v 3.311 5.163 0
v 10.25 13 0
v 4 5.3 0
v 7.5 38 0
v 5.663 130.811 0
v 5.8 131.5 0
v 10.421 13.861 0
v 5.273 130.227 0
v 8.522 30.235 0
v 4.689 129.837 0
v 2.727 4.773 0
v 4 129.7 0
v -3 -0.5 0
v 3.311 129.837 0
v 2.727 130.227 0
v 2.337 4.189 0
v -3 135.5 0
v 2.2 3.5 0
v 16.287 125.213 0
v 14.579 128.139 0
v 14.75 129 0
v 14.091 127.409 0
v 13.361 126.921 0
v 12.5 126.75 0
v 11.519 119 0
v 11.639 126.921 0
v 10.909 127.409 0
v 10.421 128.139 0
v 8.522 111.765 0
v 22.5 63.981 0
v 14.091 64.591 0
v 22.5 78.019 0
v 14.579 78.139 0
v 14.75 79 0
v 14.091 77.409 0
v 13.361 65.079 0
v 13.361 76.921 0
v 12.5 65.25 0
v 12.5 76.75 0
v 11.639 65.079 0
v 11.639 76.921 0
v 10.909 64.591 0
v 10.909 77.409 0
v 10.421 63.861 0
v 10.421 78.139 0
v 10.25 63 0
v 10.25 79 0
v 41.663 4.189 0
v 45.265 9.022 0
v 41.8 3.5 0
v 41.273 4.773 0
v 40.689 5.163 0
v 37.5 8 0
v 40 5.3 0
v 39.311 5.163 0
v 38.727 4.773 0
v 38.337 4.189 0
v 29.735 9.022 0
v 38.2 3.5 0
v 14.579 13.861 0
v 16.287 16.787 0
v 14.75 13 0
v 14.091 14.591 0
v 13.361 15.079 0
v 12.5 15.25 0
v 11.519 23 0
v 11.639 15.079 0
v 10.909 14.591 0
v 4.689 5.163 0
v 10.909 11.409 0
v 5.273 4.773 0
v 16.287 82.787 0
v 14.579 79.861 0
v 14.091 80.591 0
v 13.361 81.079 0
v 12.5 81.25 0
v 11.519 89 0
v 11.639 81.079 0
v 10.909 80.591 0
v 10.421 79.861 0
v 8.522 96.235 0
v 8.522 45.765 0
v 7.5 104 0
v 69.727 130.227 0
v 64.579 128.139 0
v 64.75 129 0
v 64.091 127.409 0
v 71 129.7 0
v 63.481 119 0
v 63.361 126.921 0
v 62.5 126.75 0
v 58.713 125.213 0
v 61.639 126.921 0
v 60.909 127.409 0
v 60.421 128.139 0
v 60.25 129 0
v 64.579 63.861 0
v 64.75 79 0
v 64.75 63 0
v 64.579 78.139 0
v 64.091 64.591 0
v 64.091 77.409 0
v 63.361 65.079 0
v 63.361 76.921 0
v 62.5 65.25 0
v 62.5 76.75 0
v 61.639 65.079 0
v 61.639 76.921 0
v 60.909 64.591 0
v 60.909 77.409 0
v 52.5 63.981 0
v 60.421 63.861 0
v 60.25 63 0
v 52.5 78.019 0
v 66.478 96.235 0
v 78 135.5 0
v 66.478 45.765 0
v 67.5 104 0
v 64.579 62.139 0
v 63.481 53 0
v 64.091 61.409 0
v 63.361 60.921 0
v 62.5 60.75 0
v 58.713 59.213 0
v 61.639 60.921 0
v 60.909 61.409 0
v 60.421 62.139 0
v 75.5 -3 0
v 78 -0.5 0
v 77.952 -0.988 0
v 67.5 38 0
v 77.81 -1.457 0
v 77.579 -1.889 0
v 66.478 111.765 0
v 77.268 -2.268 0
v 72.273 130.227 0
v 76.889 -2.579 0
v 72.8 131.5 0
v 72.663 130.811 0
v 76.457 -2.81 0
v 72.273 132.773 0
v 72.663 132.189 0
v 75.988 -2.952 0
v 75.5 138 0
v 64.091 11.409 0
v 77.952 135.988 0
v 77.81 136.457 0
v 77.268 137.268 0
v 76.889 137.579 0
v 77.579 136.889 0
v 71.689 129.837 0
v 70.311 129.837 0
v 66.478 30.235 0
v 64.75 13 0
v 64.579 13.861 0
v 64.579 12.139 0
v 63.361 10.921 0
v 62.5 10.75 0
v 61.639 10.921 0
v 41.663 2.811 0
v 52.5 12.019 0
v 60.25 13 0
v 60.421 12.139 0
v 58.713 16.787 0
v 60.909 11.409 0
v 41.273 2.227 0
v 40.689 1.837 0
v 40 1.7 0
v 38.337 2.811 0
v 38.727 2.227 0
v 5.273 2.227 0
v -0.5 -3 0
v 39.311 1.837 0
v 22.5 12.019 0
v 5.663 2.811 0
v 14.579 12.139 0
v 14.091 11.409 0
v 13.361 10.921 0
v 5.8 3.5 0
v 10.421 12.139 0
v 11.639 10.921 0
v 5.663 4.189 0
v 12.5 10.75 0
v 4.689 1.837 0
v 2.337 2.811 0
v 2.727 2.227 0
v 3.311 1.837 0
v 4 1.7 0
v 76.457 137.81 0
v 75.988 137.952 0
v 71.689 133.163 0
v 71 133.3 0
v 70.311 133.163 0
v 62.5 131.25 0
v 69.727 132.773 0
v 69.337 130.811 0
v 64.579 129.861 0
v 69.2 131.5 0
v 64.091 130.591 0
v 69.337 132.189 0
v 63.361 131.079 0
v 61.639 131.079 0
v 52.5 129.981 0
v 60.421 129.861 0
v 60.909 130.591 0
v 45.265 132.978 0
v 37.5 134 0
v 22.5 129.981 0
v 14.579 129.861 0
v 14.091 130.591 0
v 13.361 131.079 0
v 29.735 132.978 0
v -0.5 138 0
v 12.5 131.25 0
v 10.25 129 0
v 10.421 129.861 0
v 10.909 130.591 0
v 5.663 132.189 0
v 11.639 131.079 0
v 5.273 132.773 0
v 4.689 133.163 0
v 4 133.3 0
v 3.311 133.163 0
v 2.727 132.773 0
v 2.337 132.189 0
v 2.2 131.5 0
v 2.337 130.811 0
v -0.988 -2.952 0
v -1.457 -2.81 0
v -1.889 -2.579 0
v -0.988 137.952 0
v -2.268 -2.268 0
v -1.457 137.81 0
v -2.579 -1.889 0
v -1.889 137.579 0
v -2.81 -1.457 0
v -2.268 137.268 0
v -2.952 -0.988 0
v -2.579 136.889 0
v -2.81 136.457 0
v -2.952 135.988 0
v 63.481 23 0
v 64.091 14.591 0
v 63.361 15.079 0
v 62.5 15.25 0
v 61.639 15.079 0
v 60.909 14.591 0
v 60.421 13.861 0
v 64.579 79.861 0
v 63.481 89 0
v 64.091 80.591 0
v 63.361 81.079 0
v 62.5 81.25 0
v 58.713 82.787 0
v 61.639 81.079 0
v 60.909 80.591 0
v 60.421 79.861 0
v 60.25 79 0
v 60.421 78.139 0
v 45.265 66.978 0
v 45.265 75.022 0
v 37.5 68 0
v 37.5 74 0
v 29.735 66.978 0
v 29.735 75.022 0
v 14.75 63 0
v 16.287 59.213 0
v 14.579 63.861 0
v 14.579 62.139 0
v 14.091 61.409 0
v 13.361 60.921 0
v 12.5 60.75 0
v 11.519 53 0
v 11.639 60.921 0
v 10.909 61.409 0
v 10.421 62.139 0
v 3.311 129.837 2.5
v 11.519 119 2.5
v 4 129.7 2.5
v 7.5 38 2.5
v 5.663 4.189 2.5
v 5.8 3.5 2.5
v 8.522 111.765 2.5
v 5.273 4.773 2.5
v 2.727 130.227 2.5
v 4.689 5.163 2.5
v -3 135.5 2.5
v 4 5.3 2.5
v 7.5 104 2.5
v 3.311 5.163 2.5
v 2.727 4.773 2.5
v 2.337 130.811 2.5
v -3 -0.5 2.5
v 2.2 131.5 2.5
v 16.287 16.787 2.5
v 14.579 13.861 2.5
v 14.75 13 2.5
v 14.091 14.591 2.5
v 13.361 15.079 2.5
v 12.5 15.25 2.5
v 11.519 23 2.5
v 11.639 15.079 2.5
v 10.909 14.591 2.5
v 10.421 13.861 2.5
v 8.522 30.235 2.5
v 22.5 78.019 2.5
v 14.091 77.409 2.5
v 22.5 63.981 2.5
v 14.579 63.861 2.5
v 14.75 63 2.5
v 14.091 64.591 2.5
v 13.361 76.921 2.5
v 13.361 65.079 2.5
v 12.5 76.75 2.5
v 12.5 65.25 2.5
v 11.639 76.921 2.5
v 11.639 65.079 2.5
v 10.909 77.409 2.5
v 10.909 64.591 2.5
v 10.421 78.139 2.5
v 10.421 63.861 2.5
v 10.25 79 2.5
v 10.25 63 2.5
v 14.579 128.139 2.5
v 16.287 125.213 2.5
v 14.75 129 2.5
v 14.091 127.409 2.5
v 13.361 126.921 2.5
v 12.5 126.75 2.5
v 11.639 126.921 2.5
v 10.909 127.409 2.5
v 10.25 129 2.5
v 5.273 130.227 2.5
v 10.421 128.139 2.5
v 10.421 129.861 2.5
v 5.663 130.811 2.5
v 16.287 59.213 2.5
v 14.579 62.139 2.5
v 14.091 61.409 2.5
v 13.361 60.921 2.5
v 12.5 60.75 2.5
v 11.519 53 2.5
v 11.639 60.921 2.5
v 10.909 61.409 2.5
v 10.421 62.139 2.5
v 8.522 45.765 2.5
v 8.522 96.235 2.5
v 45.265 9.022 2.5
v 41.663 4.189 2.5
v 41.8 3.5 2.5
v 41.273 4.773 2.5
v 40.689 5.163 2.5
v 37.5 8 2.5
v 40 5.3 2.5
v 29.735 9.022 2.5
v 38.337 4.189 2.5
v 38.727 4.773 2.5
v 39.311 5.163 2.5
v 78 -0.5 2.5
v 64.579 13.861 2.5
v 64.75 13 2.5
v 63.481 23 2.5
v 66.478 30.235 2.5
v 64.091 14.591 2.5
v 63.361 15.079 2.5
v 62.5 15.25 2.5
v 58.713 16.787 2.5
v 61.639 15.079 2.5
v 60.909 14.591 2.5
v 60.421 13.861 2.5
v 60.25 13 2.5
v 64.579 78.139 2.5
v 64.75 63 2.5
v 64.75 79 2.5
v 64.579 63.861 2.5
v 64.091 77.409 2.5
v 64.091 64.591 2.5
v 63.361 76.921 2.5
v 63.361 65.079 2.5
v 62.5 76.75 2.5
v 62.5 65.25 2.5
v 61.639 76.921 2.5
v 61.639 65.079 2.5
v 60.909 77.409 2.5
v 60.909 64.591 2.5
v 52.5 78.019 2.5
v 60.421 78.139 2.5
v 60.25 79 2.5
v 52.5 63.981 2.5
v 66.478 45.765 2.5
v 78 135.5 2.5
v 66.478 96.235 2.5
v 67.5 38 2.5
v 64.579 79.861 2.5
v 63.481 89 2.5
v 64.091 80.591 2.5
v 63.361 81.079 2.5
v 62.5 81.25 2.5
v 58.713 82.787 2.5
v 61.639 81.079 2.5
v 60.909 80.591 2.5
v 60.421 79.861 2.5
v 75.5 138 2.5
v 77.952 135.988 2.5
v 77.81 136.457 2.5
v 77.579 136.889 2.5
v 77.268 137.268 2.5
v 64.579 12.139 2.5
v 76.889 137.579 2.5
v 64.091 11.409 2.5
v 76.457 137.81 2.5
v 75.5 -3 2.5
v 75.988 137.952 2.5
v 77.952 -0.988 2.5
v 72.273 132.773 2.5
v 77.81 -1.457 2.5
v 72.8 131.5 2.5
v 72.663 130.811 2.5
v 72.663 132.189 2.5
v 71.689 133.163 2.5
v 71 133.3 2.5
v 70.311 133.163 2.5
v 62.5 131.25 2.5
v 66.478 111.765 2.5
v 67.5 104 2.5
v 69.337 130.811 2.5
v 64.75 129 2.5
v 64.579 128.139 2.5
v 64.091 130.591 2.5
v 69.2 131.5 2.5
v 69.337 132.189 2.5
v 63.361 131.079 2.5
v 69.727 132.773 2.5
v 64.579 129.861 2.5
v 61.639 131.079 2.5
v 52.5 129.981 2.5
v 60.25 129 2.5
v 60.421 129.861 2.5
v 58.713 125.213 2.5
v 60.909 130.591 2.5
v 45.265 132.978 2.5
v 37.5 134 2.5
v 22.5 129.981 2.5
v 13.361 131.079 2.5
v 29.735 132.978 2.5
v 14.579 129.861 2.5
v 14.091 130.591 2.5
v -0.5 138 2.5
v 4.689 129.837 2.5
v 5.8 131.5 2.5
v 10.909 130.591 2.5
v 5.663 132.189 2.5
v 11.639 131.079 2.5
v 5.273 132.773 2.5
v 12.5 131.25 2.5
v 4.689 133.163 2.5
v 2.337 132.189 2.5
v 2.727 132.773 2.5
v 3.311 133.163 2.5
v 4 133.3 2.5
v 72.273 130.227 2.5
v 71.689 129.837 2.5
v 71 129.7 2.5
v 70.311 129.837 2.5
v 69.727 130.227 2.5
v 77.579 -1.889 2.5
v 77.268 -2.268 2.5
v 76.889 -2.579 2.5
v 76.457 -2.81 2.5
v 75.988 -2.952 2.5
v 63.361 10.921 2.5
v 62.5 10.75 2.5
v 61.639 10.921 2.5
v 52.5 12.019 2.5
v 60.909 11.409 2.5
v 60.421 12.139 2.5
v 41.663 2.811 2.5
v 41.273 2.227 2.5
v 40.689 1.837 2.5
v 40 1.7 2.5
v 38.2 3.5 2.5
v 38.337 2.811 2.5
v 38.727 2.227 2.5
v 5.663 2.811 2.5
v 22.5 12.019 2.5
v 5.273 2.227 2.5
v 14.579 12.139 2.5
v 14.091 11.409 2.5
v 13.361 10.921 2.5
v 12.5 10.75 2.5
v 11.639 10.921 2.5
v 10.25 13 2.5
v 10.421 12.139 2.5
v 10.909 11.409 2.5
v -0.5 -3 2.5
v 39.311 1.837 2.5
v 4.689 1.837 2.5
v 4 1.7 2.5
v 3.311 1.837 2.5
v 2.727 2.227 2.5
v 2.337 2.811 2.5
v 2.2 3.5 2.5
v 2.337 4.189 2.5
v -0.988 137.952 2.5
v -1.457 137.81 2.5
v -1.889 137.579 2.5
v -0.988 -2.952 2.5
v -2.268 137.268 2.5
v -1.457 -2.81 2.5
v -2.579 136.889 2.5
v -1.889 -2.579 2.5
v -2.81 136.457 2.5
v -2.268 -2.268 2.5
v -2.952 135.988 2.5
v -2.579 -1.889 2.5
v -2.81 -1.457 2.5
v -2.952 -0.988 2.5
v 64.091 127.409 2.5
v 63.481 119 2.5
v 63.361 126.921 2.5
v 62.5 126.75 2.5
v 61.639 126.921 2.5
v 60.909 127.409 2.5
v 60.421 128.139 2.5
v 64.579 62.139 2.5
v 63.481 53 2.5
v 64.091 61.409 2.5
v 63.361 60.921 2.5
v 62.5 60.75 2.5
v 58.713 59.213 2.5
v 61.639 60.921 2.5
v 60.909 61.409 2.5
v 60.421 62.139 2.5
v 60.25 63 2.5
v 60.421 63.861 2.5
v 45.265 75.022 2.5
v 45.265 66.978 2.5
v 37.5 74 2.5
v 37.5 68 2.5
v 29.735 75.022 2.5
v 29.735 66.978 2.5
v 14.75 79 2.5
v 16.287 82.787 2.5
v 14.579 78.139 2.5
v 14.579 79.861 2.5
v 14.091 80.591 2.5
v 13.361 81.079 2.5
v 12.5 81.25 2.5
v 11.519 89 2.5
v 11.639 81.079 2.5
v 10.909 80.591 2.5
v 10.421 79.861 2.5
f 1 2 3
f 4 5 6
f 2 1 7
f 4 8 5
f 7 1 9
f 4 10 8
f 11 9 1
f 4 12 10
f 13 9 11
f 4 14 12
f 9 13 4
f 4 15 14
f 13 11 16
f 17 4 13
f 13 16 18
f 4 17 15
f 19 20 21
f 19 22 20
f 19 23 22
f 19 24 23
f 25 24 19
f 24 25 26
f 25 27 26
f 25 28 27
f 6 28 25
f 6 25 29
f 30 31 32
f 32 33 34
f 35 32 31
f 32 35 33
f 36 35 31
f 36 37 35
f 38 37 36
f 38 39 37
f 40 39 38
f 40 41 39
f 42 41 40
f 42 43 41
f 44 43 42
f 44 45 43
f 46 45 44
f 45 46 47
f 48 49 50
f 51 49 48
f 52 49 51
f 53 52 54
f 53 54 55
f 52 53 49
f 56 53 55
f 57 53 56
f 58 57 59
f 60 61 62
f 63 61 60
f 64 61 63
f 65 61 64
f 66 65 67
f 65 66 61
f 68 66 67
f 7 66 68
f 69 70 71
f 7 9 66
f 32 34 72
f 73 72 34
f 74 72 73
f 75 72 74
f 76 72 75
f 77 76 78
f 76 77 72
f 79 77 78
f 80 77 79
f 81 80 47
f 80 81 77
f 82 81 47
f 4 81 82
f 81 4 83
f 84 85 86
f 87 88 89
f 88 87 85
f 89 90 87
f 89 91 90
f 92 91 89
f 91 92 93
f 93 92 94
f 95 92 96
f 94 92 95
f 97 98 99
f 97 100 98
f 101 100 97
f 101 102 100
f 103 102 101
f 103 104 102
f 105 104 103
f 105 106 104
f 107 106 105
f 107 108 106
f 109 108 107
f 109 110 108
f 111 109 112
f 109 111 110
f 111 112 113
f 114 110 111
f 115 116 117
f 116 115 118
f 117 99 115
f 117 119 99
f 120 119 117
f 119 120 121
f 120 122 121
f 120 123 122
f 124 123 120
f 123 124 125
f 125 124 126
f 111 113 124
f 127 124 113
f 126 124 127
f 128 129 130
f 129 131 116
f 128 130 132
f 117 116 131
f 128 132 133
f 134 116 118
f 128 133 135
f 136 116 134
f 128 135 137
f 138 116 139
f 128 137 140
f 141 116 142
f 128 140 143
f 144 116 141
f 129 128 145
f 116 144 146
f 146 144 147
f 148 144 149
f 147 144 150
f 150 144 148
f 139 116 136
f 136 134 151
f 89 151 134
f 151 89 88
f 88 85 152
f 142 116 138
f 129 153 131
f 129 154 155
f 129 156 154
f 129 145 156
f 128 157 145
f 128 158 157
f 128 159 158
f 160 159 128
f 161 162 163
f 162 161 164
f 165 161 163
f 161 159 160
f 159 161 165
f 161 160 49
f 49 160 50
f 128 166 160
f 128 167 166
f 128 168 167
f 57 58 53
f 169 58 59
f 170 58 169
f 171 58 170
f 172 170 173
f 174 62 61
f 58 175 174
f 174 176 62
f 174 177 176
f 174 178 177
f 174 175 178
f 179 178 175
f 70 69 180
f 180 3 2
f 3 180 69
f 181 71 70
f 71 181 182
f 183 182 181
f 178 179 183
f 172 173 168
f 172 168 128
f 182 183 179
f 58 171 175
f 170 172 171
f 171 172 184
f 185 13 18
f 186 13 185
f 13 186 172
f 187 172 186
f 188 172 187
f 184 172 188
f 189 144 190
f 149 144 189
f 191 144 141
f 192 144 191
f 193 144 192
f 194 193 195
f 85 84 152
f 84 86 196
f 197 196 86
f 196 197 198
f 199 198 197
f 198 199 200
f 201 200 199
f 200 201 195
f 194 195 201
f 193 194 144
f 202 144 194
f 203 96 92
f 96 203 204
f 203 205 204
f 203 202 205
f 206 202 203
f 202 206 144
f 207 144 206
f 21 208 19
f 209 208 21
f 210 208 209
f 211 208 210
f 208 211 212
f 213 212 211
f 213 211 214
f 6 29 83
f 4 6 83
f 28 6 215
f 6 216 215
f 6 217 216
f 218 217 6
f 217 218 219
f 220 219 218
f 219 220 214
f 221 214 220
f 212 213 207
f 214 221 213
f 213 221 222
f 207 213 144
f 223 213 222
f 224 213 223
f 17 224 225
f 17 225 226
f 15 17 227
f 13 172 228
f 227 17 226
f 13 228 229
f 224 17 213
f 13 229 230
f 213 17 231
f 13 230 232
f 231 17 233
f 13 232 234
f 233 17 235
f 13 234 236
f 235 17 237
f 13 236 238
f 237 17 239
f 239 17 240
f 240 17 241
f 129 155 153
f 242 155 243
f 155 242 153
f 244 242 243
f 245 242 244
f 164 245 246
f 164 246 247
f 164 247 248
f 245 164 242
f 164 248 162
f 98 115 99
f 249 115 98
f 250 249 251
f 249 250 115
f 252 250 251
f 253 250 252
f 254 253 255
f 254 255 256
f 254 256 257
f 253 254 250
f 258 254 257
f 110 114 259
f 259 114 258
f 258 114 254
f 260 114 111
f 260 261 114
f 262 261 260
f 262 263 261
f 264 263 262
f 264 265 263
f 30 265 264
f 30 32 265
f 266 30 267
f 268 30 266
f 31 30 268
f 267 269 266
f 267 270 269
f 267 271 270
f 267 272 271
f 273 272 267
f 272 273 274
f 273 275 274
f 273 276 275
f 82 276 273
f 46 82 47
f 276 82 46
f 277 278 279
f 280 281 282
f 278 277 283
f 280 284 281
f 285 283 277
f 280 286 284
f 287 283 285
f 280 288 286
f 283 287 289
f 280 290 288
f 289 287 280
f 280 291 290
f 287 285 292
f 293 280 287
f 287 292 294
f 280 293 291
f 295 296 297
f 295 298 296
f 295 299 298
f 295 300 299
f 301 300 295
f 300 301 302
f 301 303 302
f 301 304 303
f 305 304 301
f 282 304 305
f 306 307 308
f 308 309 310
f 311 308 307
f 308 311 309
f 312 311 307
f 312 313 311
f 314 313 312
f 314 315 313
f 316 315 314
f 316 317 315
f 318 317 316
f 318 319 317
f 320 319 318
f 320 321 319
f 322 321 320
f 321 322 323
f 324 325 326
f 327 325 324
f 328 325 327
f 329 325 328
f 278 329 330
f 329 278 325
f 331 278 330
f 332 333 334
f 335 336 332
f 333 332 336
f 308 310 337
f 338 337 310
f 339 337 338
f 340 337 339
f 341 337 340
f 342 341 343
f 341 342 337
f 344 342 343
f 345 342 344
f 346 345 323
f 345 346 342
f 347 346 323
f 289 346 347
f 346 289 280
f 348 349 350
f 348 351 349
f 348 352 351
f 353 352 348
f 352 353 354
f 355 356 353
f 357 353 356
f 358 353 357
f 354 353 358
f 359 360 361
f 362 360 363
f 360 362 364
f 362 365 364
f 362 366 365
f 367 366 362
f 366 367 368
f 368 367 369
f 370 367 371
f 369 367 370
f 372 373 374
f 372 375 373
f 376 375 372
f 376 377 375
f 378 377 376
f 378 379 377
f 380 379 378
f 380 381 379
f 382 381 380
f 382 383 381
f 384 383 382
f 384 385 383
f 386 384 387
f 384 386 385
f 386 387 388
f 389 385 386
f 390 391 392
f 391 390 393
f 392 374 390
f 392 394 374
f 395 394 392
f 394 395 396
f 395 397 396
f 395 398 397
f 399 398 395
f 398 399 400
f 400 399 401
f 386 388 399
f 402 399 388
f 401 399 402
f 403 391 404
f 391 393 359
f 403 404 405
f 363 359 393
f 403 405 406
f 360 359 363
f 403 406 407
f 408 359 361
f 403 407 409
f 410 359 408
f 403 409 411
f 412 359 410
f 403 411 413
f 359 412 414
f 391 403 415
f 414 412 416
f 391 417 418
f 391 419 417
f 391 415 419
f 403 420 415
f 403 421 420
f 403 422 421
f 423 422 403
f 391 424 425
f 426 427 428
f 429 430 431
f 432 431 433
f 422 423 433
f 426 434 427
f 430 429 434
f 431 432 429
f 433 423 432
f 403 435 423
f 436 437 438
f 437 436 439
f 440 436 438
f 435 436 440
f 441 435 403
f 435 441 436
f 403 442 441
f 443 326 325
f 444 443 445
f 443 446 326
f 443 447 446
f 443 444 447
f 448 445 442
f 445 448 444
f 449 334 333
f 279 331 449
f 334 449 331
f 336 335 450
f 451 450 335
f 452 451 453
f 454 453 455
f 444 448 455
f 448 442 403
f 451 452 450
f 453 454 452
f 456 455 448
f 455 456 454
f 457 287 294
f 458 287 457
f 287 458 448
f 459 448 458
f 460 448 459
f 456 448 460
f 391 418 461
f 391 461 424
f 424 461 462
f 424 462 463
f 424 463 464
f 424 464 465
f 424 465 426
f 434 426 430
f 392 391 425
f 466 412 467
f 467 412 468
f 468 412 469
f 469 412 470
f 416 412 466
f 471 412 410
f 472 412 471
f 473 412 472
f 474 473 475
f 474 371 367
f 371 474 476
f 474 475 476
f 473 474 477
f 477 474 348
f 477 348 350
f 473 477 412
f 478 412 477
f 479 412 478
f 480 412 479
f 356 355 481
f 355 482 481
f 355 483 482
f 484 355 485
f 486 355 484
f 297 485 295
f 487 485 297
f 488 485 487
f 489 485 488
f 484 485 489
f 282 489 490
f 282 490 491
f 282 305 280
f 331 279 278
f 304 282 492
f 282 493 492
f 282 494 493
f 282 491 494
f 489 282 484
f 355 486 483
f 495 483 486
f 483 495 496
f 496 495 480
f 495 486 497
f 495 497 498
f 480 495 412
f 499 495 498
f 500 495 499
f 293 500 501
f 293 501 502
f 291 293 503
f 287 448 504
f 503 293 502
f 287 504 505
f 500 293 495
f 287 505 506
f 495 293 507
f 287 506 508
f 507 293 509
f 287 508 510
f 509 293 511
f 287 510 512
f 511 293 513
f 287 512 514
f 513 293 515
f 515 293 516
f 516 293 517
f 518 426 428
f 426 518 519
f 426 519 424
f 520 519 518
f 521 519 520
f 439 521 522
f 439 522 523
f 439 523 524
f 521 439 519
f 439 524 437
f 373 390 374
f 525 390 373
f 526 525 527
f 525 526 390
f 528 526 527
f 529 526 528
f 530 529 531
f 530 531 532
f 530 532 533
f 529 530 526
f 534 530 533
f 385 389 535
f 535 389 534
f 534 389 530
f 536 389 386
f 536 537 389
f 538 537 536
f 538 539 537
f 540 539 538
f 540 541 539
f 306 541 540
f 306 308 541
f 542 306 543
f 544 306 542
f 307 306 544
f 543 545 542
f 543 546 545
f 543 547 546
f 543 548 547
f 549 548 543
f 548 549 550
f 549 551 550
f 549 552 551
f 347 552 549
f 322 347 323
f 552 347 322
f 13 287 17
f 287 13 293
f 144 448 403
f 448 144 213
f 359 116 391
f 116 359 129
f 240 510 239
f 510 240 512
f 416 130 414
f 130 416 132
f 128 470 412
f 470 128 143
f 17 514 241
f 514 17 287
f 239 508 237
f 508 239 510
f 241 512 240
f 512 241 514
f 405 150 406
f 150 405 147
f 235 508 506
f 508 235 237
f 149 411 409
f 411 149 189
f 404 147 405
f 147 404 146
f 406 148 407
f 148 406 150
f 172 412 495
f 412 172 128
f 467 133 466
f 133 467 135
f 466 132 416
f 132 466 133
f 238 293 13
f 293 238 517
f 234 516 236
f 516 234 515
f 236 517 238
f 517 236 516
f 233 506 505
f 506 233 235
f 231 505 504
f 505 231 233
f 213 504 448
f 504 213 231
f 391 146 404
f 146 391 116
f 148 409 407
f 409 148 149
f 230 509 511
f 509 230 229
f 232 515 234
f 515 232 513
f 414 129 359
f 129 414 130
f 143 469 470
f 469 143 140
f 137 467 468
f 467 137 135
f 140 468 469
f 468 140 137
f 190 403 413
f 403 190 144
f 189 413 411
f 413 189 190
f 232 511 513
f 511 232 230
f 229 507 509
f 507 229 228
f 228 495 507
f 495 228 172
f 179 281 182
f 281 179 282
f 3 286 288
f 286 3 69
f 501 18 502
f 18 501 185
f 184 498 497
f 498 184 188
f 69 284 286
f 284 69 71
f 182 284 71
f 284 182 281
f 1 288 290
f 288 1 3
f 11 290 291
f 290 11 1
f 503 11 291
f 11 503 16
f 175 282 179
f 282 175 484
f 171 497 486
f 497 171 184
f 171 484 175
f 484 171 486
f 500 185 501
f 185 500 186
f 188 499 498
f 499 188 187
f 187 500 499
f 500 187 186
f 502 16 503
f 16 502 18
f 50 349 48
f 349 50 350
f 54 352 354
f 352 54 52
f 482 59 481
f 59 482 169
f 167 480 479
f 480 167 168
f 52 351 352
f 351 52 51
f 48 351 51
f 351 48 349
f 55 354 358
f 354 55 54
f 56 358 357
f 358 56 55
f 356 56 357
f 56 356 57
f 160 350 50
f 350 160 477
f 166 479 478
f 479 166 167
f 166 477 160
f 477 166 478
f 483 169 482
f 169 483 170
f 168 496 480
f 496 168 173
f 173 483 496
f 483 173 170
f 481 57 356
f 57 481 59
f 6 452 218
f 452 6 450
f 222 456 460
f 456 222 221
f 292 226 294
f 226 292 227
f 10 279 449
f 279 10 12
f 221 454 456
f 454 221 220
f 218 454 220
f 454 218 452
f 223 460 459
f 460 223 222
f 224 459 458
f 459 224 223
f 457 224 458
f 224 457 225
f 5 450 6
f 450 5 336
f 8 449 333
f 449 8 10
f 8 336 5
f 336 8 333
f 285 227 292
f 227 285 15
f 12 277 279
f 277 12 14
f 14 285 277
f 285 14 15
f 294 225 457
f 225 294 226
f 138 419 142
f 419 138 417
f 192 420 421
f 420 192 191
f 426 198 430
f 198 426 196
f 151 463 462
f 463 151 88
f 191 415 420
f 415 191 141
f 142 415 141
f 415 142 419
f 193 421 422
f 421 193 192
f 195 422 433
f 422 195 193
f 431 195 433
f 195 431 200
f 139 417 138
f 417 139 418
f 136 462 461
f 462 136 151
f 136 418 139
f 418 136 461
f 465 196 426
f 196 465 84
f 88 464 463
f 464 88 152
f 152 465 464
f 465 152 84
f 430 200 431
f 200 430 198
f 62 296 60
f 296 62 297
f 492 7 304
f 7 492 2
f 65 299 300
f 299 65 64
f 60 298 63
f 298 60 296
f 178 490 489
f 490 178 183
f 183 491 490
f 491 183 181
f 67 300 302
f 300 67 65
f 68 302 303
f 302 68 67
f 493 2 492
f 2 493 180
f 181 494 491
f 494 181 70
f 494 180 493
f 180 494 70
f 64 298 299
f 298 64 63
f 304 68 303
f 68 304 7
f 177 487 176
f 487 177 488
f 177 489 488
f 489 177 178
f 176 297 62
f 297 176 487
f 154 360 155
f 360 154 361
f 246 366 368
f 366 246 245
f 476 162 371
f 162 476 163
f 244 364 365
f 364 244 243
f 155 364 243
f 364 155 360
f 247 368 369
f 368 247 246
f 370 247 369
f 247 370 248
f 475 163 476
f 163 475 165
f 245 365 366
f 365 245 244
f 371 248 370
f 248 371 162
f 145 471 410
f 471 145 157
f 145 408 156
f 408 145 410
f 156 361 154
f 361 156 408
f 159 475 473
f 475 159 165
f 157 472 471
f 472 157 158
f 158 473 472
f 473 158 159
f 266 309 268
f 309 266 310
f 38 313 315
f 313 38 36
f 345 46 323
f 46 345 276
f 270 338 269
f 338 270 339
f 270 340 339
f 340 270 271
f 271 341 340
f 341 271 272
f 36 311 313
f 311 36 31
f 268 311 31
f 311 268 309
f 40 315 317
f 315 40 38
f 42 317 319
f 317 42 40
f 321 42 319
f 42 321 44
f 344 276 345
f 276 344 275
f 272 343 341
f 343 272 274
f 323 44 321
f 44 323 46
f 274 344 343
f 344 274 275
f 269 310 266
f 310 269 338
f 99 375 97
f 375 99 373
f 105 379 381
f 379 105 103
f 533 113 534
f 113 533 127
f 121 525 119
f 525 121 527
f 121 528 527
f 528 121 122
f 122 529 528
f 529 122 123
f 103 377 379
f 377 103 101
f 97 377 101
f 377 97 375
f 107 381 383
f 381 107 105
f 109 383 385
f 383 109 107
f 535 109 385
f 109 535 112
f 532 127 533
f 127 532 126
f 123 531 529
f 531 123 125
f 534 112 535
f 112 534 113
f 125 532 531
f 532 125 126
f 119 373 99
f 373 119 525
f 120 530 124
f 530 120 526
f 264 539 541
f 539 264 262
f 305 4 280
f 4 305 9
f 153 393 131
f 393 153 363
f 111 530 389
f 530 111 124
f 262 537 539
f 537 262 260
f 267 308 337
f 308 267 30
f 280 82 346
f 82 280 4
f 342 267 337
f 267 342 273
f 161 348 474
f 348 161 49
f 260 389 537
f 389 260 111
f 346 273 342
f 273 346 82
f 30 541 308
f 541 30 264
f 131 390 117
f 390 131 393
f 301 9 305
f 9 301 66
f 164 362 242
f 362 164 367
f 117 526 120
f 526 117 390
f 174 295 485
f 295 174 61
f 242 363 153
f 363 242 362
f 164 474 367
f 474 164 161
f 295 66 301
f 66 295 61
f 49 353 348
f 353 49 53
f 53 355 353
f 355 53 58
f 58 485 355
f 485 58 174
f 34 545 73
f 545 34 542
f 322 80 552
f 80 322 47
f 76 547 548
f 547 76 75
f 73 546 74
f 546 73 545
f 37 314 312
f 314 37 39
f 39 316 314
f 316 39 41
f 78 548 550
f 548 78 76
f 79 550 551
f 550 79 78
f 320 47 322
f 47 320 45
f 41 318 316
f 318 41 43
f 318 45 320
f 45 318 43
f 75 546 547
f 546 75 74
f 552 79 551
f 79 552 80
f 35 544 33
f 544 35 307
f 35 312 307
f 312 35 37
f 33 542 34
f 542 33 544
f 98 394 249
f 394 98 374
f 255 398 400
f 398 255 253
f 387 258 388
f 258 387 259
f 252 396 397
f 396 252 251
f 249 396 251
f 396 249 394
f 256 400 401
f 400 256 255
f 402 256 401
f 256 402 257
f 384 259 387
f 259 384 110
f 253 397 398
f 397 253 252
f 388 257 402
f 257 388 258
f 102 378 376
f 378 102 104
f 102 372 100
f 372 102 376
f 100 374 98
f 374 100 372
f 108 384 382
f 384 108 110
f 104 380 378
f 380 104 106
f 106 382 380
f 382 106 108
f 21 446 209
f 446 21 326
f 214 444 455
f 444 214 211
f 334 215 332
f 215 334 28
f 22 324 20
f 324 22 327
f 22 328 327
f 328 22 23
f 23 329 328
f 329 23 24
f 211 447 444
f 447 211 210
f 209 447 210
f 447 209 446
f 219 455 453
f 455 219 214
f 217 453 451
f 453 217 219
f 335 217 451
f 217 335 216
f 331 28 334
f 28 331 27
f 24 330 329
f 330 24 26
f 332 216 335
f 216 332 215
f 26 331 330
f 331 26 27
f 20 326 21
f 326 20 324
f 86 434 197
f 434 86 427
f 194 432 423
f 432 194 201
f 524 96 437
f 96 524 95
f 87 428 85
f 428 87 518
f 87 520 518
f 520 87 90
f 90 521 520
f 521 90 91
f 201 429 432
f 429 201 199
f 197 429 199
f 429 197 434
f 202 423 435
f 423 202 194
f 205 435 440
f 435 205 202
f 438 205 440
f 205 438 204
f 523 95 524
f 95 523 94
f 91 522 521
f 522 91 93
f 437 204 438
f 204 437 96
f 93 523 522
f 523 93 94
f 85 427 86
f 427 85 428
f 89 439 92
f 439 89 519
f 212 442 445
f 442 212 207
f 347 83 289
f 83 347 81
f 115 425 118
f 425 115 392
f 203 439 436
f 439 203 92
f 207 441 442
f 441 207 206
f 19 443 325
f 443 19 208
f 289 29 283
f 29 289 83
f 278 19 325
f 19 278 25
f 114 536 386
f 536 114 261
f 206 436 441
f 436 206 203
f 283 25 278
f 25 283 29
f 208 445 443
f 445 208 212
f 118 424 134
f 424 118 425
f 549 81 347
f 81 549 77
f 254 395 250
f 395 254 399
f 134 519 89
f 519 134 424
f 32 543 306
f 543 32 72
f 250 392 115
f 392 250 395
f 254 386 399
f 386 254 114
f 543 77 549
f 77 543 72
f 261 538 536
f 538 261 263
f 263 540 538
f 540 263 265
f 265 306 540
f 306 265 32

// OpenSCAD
// file: ../../inc/text_RebeliX.scad
// Module names are of the form poly_<inkscape-path-id>().  As a result,
// you can associate a polygon in this OpenSCAD program with the corresponding
// SVG element in the Inkscape document by looking for the XML element with
// the attribute id="inkscape-path-id".

// fudge value is used to ensure that subtracted solids are a tad taller
// in the z dimension than the polygon being subtracted from.  This helps
// keep the resulting .stl file manifold.
fudge = 0.1;

module poly_path3169(h)
{
  scale([25.4/90, -25.4/90, 1]) union()
  {
    linear_extrude(height=h)
      polygon([[74.960940,-30.336910],[74.960940,32.980960],[57.612310,32.980960],[57.612310,-30.336910]]);
  }
}

module poly_path3163(h)
{
  scale([25.4/90, -25.4/90, 1]) union()
  {
    linear_extrude(height=h)
      polygon([[-57.241210,12.663580],[-83.542480,12.663580],[-84.145510,8.999020],[-83.936785,6.702904],[-83.310550,4.453130],[-74.497070,4.453130],[-75.207384,2.200490],[-76.410545,0.591455],[-78.106554,-0.373975],[-80.295410,-0.695800],[-81.843581,-0.523282],[-83.240985,-0.005773],[-84.487624,0.856725],[-85.583500,2.064210],[-86.476452,3.541354],[-87.114271,5.212729],[-87.624510,9.138180],[-87.131669,13.208634],[-86.515593,14.922040],[-85.653080,16.420900],[-84.590546,17.638558],[-83.374347,18.508312],[-82.004486,19.030160],[-80.480960,19.204100],[-79.193740,19.041757],[-77.929706,18.554700],[-75.471190,16.606450],[-65.590820,28.481450],[-69.142321,30.855868],[-72.885155,32.551880],[-76.819321,33.569488],[-80.944820,33.908690],[-85.887918,33.476714],[-90.419325,32.180786],[-94.539042,30.020905],[-98.247070,26.997070],[-101.311495,23.335423],[-103.500369,19.262092],[-104.813691,14.777075],[-105.251460,9.880370],[-104.809342,4.998187],[-103.482975,0.510280],[-101.272357,-3.583352],[-98.177490,-7.282710],[-94.439019,-10.347111],[-90.297559,-12.535976],[-85.753107,-13.849308],[-80.805660,-14.287110],[-75.974212,-13.859454],[-71.545737,-12.576562],[-67.520234,-10.438434],[-63.897700,-7.445070],[-60.904336,-3.825435],[-58.766207,0.191373],[-57.483316,4.605353],[-57.055660,9.416510],[-57.241210,12.663580]]);
  }
}

module poly_path3161(h)
{
  scale([25.4/90, -25.4/90, 1]) union()
  {
    linear_extrude(height=h)
      polygon([[-139.345700,-13.312990],[-139.345700,32.980960],[-158.178710,32.980960],[-158.178710,-30.336910],[-134.011230,-30.336910],[-128.801443,-29.994775],[-124.212065,-28.968459],[-120.243095,-27.257961],[-116.894530,-24.863280],[-113.931608,-21.595888],[-111.815224,-17.916832],[-110.545377,-13.826113],[-110.122070,-9.323730],[-110.646849,-4.711132],[-112.221109,-0.475439],[-114.844850,3.383352],[-118.518070,6.865240],[-107.663570,32.980960],[-127.424320,32.980960],[-136.562500,12.570800],[-136.562500,-3.710940],[-135.078120,-3.710940],[-132.480483,-4.029825],[-130.625022,-4.986543],[-129.511735,-6.581093],[-129.140620,-8.813480],[-129.569720,-10.781990],[-130.856959,-12.188077],[-133.002339,-13.031743],[-136.005860,-13.312990]]);
  }
}

module poly_path3165(h)
{
  scale([25.4/90, -25.4/90, 1]) union()
  {
    linear_extrude(height=h)
      polygon([[-33.676760,-30.336910],[-33.676760,7.561040],[-33.262190,11.599593],[-32.743966,13.186166],[-32.018450,14.484269],[-31.085641,15.493903],[-29.945540,16.215067],[-28.598146,16.647763],[-27.043460,16.791990],[-24.428426,16.310744],[-22.242430,14.866940],[-20.763879,12.738967],[-20.271000,10.205080],[-20.734889,7.601642],[-22.126460,5.450440],[-24.190692,4.006674],[-26.672360,3.525390],[-28.713395,3.942892],[-31.032710,5.195310],[-31.032710,-13.916010],[-26.394040,-14.194330],[-21.675662,-13.753634],[-17.308071,-12.431605],[-13.291265,-10.228244],[-9.625240,-7.143550],[-6.570995,-3.438394],[-4.389379,0.626248],[-3.080394,5.050376],[-2.644040,9.833990],[-3.087641,14.713297],[-4.418369,19.192514],[-6.636225,23.271641],[-9.741210,26.950680],[-13.492759,29.994812],[-17.650175,32.169190],[-22.213461,33.473815],[-27.182620,33.908690],[-32.314164,33.340452],[-37.318110,31.635740],[-41.823436,28.968510],[-45.458980,25.512700],[-47.894289,21.926430],[-49.633791,17.847300],[-50.677491,13.275307],[-51.025390,8.210450],[-51.025390,-30.336910]]);
  }
}

module poly_path3167(h)
{
  scale([25.4/90, -25.4/90, 1]) union()
  {
    linear_extrude(height=h)
      polygon([[50.375980,12.663580],[24.074710,12.663580],[23.471680,8.999020],[23.680405,6.702904],[24.306640,4.453130],[33.120120,4.453130],[32.409806,2.200490],[31.206645,0.591455],[29.510636,-0.373975],[27.321780,-0.695800],[25.773609,-0.523282],[24.376205,-0.005773],[23.129566,0.856725],[22.033690,2.064210],[21.140734,3.541354],[20.502915,5.212729],[19.992680,9.138180],[20.485521,13.208634],[21.101597,14.922040],[21.964110,16.420900],[23.026644,17.638558],[24.242843,18.508312],[25.612704,19.030160],[27.136230,19.204100],[28.423444,19.041757],[29.687476,18.554700],[32.146000,16.606450],[42.026370,28.481450],[38.474864,30.855868],[34.732030,32.551880],[30.797863,33.569488],[26.672360,33.908690],[21.729267,33.476714],[17.197864,32.180786],[13.078148,30.020905],[9.370120,26.997070],[6.305695,23.335423],[4.116820,19.262092],[2.803495,14.777075],[2.365720,9.880370],[2.807843,4.998187],[4.134214,0.510280],[6.344832,-3.583352],[9.439700,-7.282710],[13.178171,-10.347111],[17.319630,-12.535976],[21.864079,-13.849308],[26.811520,-14.287110],[31.642968,-13.859454],[36.071443,-12.576562],[40.096946,-10.438434],[43.719480,-7.445070],[46.712849,-3.825435],[48.850976,0.191373],[50.133866,4.605353],[50.561520,9.416510],[50.375980,12.663580]]);
  }
}

module poly_path3171(h)
{
  scale([25.4/90, -25.4/90, 1]) union()
  {
    linear_extrude(height=h)
      polygon([[102.421880,-13.266600],[102.421880,32.980960],[85.073240,32.980960],[85.073240,-13.266600]]);
    linear_extrude(height=h)
      polygon([[93.793950,-33.908690],[95.497200,-33.753545],[97.081591,-33.288215],[98.547124,-32.512700],[99.893800,-31.427000],[101.020116,-30.129588],[101.824631,-28.719131],[102.307345,-27.195629],[102.468260,-25.559080],[102.316042,-23.831146],[101.859419,-22.265584],[101.098391,-20.862395],[100.032960,-19.621580],[98.729775,-18.606843],[97.255545,-17.882040],[95.610270,-17.447172],[93.793950,-17.302240],[91.977613,-17.447172],[90.332331,-17.882040],[88.858104,-18.606843],[87.554930,-19.621580],[86.489482,-20.862395],[85.728449,-22.265584],[85.271831,-23.831146],[85.119630,-25.559080],[85.280529,-27.195629],[85.763240,-28.719131],[86.567761,-30.129588],[87.694090,-31.427000],[89.040749,-32.512700],[90.506278,-33.288215],[92.090677,-33.753545],[93.793950,-33.908690]]);
  }
}

module poly_path3173(h)
{
  scale([25.4/90, -25.4/90, 1]) union()
  {
    linear_extrude(height=h)
      polygon([[157.622070,-30.336910],[141.154790,0.463870],[158.178710,32.980960],[138.371580,32.980960],[130.578610,17.626950],[123.991700,32.980960],[104.509280,32.980960],[121.904300,0.974120],[105.437010,-30.336910],[125.058590,-30.336910],[132.434080,-15.957030],[138.371580,-30.336910]]);
  }
}

module text_RebeliX(h)
{

poly_path3169(h);
poly_path3163(h);
poly_path3161(h);
poly_path3165(h);
poly_path3167(h);
poly_path3171(h);
poly_path3173(h);
}

text_RebeliX(2);
// main file
/* 
   === RebeliX BoX ===

   RUMBA cover
   GNU GPL v3
   Martin Neruda <neruda@RebeliX.cz>
   http://www.RebeliX.cz
*/

//include <../../configuration.scad>
include <../../inc/functions.scad>
use <../../inc/text_RebeliX.scad>

sirka = 75;
vyska = 135;
rohy_prumer = 5;
tloustka = 2.5;
tloustka_steny = 3;
// solid_plate = 0 => otvory skrz
// solid_plate = 1 => prvni 2 vrstvy vyplnene na 100%
solid_plate = 0;
// Vyska sloupku
sloupek = 0;

noctua_hole = 4.5;
noctua_pitch = 50;
noctua_fanhole = 60;

RUMBA_mount_holes = [
	[4, 3.5, 0],
	[4 + 36,3.5, 0],
	[4,vyska - 3.5, 0],
	[sirka - 8/2,vyska - 3.5, 0]
];

RUMBA_mount_holes_offset = [0,0,0];

cover_corners = [
	[rohy_prumer/2 - 3,rohy_prumer/2 - 3,0],
	[sirka-rohy_prumer/2 + 3,rohy_prumer/2 - 3,0],
	[sirka-rohy_prumer/2 + 3,vyska-rohy_prumer/2 + 3,0],
	[rohy_prumer/2 - 3,vyska-rohy_prumer/2 + 3,0]
];

module obvod(length)
{ 
  difference()
  {
	hull()
	{
	  for (a = cover_corners)
	  translate(a)
	  {
		cylinder(r=rohy_prumer/2,h=tloustka,$fn=32);
	  } 
	}	
	//translate([tloustka_steny,tloustka_steny,solid_plate == 0 ? -0.1 : 2*layer_height]) cube([sirka-2*tloustka_steny,vyska-2*tloustka_steny,tloustka+1]);
  }
  // Otvory pro srouby
  for (a = RUMBA_mount_holes)
  translate(a+RUMBA_mount_holes_offset)
  {
	// Sloupek
	cylinder(d=8,h=tloustka + sloupek,$fn=32);
  } 
}


module otvory()
{
  for (a = RUMBA_mount_holes)
  {
    // Otvory pro srouby
	translate(a+[0,0,-0.1]+RUMBA_mount_holes_offset)
	cylinder(d=3.6,h=tloustka+sloupek + 1,$fn=16);
  }
}

module fan_module() {
	// mounting holes
	translate([0, 0, 0]) cylinder(d=noctua_hole, h=tloustka+sloupek+1, $fn=16);
	translate([noctua_pitch, 0, 0]) cylinder(d=noctua_hole, h=tloustka+sloupek+1, $fn=16);
	translate([0, noctua_pitch, 0]) cylinder(d=noctua_hole, h=tloustka+sloupek+1, $fn=16);
	translate([noctua_pitch, noctua_pitch, 0]) cylinder(d=noctua_hole, h=tloustka+sloupek+1, $fn=16);
	// fan hole
	translate([noctua_pitch/2, noctua_pitch/2, 0]) cylinder(d=noctua_fanhole, h=tloustka+sloupek+1, $fn=24);
}


module RUMBA_cover()
{ 
  difference()
  {
  	union() {
	obvod();
	//translate([sirka/2-60/2, 8, -0.1]) cube(size=[60, 60, 25]);
	//translate([sirka/2-60/2, 74, -1.1]) cube(size=[60, 60, 25]);

	}	
  	otvory();
  	translate([sirka/2-noctua_pitch/2, 13, -0.1]) fan_module();
  	translate([sirka/2-noctua_pitch/2, 79, -0.1]) fan_module();


  // Napis
  //translate([sirka/2,vyska - 20 - 5,tloustka - 1.5]) scale([0.7,0.7,1]) text_RebeliX(tloustka);
  }
}  

RUMBA_cover();
